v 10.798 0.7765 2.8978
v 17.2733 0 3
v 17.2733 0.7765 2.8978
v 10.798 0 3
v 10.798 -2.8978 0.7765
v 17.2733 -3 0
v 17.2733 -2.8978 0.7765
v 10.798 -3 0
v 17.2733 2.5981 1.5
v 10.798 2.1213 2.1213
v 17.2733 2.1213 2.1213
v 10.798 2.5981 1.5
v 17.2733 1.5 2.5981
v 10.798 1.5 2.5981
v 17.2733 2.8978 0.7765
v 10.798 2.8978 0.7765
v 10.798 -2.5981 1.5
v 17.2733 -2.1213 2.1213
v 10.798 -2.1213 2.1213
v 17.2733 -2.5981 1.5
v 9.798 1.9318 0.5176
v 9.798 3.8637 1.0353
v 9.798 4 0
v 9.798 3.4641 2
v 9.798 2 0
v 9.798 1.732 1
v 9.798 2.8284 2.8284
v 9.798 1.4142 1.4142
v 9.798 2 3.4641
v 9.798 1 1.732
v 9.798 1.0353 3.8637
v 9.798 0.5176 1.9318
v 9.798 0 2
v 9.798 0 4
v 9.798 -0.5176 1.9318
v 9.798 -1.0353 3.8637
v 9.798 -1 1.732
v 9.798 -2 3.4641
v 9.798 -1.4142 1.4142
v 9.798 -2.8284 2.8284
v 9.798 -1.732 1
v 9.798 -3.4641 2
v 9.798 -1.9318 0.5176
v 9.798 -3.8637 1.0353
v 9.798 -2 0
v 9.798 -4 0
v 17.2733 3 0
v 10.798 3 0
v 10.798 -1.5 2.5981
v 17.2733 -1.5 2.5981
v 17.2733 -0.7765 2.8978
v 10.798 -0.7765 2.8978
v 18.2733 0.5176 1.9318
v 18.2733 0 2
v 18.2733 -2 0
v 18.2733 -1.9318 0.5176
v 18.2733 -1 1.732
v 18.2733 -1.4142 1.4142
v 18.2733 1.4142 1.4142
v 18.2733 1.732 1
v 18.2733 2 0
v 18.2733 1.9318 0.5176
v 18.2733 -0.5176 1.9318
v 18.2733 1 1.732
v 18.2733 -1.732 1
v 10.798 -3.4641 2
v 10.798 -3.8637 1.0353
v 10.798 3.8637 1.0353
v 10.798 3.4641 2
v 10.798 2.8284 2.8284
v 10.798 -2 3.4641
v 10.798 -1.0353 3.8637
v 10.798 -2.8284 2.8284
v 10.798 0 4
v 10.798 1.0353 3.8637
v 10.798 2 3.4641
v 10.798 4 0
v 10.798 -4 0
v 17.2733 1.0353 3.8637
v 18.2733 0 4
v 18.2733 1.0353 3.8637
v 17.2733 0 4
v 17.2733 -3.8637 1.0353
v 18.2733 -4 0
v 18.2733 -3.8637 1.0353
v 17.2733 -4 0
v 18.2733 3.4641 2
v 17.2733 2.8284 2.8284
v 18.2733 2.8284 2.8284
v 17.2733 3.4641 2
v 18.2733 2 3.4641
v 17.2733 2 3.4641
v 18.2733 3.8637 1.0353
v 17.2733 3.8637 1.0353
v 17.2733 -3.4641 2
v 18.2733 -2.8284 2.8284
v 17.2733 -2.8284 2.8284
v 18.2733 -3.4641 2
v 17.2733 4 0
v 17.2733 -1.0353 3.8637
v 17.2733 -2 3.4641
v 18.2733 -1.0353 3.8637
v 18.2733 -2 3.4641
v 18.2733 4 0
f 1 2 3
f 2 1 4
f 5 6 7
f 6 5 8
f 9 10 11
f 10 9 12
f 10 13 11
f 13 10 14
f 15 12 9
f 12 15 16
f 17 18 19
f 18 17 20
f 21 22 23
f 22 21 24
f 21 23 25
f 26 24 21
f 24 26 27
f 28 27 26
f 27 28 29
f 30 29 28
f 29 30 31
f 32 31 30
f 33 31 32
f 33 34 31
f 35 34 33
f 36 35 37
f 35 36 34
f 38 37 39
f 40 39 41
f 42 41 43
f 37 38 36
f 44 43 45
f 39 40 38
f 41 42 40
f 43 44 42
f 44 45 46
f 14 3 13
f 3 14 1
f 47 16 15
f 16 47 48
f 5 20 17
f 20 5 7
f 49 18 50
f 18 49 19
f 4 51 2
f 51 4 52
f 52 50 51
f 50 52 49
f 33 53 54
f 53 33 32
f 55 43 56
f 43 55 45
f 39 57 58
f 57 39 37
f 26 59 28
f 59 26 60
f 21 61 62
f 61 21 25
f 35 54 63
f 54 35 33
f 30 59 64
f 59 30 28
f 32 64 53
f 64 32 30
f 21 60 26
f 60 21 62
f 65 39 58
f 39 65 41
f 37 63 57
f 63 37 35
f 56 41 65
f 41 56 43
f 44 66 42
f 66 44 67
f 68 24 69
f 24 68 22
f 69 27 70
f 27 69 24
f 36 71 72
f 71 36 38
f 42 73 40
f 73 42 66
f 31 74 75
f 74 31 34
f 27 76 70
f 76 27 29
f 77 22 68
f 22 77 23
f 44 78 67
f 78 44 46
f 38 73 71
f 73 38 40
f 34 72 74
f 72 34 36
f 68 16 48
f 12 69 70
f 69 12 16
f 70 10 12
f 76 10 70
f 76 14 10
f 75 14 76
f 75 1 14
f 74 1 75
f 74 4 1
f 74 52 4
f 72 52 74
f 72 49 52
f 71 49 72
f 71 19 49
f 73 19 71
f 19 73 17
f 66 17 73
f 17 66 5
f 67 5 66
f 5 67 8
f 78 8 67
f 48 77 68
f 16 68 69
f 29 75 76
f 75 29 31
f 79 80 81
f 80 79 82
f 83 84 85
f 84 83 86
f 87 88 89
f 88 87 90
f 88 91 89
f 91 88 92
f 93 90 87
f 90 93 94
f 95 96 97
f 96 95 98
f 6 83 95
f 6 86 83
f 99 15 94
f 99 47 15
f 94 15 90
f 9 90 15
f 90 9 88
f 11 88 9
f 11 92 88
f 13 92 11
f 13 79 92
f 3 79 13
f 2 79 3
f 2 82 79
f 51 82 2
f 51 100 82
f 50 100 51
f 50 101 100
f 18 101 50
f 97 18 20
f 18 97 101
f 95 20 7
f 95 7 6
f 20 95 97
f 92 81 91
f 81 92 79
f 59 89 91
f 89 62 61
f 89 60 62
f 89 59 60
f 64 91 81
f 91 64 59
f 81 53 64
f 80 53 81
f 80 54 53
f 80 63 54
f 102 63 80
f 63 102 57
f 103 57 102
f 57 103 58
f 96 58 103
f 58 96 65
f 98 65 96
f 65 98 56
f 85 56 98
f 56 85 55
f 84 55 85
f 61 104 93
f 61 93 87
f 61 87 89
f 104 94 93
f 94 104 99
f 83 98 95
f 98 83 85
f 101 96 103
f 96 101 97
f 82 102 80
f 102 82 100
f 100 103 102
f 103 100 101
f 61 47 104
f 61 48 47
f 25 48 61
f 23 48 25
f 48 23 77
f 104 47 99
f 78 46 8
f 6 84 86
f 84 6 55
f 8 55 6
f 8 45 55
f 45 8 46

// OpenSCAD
// file: ../build_environments.scad
// build_environments.scad: modules to build level sections
//

module pool(diameter=10.0, wall_height=2.0, step_width=3.0, connections=[])
{
    difference() {
        union() {
        difference() {
            cylinder(h=0.5,r1=diameter+step_width,r2=diameter+step_width,$fn=48);
            translate([0,0,-0.1])
                cylinder(h=0.7,r1=diameter,r2=diameter,$fn=48);
        }
        difference() {
            cylinder(h=wall_height,r1=diameter+step_width+1.0,r2=diameter+step_width+1.0,$fn=48);
            translate([0,0,-0.1])
                cylinder(h=wall_height+0.2,r1=diameter+step_width,r2=diameter+step_width,$fn=48);
        }
        }
    
        for (c = connections)
        {
            rotate([0,90,0]) {
                angle = atan2(c[1],c[0]);
                rotate([-angle,0,0]) {
                    cylinder(h=diameter+5.0,r1=c[2],r2=c[2],$fn=48);
                }
            }
        }
    }
}

module straight(length=10.0, width=2.0, dy1=0.0, dy2=0.0, dz=0.0)
{
    dims = [0, 0, 0, 0, 0, (dz/length)];
    matrix = [
        [ 1, dims[0], dims[1], 0 ],
        [ dims[2], 1, dims[4], 0 ],
        [ dims[5], dims[3], 1, 0 ],
        [ 0, 0, 0, 1 ]
    ];
    multmatrix(matrix)
    difference() {
        translate([dy1,0,0])
        union() {
            rotate([0,90,0]) {
                difference() {
                    cylinder(h=(length-dy1-dy2),r1=width+1.0,r2=width+1.0,$fn=24);
                    translate([0,0,-0.1])
                        cylinder(h=(length-dy1-dy2+0.2),r1=width,r2=width,$fn=24);
                }
                difference() {
                    cylinder(h=1.0,r1=width+2.0,r2=width+2.0,$fn=24);
                    translate([0,0,-0.1])
                        cylinder(h=1.2,r1=width,r2=width,$fn=24);
                }
                translate([0,0,(length-dy1-dy2)-1.0]) {
                    difference() {
                        cylinder(h=1.0,r1=width+2.0,r2=width+2.0,$fn=24);
                        translate([0,0,-0.1])
                            cylinder(h=1.2,r1=width,r2=width,$fn=24);
                    }
                }
            }
        }
        translate([0,0,-(2*width+4.0)/2])
            cube([3*length,3*length,2*width+4.0],center=true);
    }
}

module curve(p0=[0,0], center=[0,0], dir=1, angle=0.0, width=2.0)
{
    radius = sqrt((p0[0]-center[0])*(p0[0]-center[0]) + (p0[1]-center[1])*(p0[1]-center[1]));
    if (dir == 0) {
        difference() {
            rotate([0,0,-90])
            difference() {
                rotate_extrude(angle = angle, convexity = 10, $fn=32)
                    translate([radius, 0, 0])
                        circle(r = width+1.0,$fn=24);
                rotate([0,0,-1.0])
                    rotate_extrude(angle = angle+2.0, convexity = 10, $fn=32)
                        translate([radius, 0, 0])
                            circle(r = width,$fn=24);
            }
            translate([0,0,-(2*width+4.0)/2])
                cube([5*radius,5*radius,2*width+4.0],center=true);
        }
    }
    else {
        difference() {
            rotate([0,0,90])
            difference() {
                rotate_extrude(angle = -angle, convexity = 10, $fn=32)
                    translate([radius, 0, 0])
                        circle(r = width+1.0,$fn=24);
                rotate([0,0,1.0])
                    rotate_extrude(angle = -angle-2.0, convexity = 10, $fn=32)
                        translate([radius, 0, 0])
                            circle(r = width,$fn=24);
            }
            translate([0,0,-(2*width+4.0)/2])
                cube([5*radius,5*radius,2*width+4.0],center=true);
        }
    }

}

// test pool
//pool(diameter=12.0000, wall_height=3.0000, step_width=3.0000, connections=[[0.0000,-26.0000,2.0000], [23.6074,0.0000,2.0000]]);

// test straight, slope
//straight(length=26.0000, width=2.0000, dy1=11.8322, dy2=6.7082, dz=0.0000);
//straight(length=29.1549, width=12.0000, dy1=0.0000, dy2=0.0000, dz=-15.0000);

// test curve
//curve(p0=[23.6074, 0.0000], center=[23.6074, 5.0000], dir=0, angle=60.1011, width=2.0000);
//curve(p0=[33.6426, 12.4219], center=[37.9771, 9.9295], dir=1, angle=120.4627, width=2.0000);
// main file
use <../build_environments.scad>;
straight(length=28.0713, width=2.0000, dy1=9.7980, dy2=9.7980, dz=0.0000);
